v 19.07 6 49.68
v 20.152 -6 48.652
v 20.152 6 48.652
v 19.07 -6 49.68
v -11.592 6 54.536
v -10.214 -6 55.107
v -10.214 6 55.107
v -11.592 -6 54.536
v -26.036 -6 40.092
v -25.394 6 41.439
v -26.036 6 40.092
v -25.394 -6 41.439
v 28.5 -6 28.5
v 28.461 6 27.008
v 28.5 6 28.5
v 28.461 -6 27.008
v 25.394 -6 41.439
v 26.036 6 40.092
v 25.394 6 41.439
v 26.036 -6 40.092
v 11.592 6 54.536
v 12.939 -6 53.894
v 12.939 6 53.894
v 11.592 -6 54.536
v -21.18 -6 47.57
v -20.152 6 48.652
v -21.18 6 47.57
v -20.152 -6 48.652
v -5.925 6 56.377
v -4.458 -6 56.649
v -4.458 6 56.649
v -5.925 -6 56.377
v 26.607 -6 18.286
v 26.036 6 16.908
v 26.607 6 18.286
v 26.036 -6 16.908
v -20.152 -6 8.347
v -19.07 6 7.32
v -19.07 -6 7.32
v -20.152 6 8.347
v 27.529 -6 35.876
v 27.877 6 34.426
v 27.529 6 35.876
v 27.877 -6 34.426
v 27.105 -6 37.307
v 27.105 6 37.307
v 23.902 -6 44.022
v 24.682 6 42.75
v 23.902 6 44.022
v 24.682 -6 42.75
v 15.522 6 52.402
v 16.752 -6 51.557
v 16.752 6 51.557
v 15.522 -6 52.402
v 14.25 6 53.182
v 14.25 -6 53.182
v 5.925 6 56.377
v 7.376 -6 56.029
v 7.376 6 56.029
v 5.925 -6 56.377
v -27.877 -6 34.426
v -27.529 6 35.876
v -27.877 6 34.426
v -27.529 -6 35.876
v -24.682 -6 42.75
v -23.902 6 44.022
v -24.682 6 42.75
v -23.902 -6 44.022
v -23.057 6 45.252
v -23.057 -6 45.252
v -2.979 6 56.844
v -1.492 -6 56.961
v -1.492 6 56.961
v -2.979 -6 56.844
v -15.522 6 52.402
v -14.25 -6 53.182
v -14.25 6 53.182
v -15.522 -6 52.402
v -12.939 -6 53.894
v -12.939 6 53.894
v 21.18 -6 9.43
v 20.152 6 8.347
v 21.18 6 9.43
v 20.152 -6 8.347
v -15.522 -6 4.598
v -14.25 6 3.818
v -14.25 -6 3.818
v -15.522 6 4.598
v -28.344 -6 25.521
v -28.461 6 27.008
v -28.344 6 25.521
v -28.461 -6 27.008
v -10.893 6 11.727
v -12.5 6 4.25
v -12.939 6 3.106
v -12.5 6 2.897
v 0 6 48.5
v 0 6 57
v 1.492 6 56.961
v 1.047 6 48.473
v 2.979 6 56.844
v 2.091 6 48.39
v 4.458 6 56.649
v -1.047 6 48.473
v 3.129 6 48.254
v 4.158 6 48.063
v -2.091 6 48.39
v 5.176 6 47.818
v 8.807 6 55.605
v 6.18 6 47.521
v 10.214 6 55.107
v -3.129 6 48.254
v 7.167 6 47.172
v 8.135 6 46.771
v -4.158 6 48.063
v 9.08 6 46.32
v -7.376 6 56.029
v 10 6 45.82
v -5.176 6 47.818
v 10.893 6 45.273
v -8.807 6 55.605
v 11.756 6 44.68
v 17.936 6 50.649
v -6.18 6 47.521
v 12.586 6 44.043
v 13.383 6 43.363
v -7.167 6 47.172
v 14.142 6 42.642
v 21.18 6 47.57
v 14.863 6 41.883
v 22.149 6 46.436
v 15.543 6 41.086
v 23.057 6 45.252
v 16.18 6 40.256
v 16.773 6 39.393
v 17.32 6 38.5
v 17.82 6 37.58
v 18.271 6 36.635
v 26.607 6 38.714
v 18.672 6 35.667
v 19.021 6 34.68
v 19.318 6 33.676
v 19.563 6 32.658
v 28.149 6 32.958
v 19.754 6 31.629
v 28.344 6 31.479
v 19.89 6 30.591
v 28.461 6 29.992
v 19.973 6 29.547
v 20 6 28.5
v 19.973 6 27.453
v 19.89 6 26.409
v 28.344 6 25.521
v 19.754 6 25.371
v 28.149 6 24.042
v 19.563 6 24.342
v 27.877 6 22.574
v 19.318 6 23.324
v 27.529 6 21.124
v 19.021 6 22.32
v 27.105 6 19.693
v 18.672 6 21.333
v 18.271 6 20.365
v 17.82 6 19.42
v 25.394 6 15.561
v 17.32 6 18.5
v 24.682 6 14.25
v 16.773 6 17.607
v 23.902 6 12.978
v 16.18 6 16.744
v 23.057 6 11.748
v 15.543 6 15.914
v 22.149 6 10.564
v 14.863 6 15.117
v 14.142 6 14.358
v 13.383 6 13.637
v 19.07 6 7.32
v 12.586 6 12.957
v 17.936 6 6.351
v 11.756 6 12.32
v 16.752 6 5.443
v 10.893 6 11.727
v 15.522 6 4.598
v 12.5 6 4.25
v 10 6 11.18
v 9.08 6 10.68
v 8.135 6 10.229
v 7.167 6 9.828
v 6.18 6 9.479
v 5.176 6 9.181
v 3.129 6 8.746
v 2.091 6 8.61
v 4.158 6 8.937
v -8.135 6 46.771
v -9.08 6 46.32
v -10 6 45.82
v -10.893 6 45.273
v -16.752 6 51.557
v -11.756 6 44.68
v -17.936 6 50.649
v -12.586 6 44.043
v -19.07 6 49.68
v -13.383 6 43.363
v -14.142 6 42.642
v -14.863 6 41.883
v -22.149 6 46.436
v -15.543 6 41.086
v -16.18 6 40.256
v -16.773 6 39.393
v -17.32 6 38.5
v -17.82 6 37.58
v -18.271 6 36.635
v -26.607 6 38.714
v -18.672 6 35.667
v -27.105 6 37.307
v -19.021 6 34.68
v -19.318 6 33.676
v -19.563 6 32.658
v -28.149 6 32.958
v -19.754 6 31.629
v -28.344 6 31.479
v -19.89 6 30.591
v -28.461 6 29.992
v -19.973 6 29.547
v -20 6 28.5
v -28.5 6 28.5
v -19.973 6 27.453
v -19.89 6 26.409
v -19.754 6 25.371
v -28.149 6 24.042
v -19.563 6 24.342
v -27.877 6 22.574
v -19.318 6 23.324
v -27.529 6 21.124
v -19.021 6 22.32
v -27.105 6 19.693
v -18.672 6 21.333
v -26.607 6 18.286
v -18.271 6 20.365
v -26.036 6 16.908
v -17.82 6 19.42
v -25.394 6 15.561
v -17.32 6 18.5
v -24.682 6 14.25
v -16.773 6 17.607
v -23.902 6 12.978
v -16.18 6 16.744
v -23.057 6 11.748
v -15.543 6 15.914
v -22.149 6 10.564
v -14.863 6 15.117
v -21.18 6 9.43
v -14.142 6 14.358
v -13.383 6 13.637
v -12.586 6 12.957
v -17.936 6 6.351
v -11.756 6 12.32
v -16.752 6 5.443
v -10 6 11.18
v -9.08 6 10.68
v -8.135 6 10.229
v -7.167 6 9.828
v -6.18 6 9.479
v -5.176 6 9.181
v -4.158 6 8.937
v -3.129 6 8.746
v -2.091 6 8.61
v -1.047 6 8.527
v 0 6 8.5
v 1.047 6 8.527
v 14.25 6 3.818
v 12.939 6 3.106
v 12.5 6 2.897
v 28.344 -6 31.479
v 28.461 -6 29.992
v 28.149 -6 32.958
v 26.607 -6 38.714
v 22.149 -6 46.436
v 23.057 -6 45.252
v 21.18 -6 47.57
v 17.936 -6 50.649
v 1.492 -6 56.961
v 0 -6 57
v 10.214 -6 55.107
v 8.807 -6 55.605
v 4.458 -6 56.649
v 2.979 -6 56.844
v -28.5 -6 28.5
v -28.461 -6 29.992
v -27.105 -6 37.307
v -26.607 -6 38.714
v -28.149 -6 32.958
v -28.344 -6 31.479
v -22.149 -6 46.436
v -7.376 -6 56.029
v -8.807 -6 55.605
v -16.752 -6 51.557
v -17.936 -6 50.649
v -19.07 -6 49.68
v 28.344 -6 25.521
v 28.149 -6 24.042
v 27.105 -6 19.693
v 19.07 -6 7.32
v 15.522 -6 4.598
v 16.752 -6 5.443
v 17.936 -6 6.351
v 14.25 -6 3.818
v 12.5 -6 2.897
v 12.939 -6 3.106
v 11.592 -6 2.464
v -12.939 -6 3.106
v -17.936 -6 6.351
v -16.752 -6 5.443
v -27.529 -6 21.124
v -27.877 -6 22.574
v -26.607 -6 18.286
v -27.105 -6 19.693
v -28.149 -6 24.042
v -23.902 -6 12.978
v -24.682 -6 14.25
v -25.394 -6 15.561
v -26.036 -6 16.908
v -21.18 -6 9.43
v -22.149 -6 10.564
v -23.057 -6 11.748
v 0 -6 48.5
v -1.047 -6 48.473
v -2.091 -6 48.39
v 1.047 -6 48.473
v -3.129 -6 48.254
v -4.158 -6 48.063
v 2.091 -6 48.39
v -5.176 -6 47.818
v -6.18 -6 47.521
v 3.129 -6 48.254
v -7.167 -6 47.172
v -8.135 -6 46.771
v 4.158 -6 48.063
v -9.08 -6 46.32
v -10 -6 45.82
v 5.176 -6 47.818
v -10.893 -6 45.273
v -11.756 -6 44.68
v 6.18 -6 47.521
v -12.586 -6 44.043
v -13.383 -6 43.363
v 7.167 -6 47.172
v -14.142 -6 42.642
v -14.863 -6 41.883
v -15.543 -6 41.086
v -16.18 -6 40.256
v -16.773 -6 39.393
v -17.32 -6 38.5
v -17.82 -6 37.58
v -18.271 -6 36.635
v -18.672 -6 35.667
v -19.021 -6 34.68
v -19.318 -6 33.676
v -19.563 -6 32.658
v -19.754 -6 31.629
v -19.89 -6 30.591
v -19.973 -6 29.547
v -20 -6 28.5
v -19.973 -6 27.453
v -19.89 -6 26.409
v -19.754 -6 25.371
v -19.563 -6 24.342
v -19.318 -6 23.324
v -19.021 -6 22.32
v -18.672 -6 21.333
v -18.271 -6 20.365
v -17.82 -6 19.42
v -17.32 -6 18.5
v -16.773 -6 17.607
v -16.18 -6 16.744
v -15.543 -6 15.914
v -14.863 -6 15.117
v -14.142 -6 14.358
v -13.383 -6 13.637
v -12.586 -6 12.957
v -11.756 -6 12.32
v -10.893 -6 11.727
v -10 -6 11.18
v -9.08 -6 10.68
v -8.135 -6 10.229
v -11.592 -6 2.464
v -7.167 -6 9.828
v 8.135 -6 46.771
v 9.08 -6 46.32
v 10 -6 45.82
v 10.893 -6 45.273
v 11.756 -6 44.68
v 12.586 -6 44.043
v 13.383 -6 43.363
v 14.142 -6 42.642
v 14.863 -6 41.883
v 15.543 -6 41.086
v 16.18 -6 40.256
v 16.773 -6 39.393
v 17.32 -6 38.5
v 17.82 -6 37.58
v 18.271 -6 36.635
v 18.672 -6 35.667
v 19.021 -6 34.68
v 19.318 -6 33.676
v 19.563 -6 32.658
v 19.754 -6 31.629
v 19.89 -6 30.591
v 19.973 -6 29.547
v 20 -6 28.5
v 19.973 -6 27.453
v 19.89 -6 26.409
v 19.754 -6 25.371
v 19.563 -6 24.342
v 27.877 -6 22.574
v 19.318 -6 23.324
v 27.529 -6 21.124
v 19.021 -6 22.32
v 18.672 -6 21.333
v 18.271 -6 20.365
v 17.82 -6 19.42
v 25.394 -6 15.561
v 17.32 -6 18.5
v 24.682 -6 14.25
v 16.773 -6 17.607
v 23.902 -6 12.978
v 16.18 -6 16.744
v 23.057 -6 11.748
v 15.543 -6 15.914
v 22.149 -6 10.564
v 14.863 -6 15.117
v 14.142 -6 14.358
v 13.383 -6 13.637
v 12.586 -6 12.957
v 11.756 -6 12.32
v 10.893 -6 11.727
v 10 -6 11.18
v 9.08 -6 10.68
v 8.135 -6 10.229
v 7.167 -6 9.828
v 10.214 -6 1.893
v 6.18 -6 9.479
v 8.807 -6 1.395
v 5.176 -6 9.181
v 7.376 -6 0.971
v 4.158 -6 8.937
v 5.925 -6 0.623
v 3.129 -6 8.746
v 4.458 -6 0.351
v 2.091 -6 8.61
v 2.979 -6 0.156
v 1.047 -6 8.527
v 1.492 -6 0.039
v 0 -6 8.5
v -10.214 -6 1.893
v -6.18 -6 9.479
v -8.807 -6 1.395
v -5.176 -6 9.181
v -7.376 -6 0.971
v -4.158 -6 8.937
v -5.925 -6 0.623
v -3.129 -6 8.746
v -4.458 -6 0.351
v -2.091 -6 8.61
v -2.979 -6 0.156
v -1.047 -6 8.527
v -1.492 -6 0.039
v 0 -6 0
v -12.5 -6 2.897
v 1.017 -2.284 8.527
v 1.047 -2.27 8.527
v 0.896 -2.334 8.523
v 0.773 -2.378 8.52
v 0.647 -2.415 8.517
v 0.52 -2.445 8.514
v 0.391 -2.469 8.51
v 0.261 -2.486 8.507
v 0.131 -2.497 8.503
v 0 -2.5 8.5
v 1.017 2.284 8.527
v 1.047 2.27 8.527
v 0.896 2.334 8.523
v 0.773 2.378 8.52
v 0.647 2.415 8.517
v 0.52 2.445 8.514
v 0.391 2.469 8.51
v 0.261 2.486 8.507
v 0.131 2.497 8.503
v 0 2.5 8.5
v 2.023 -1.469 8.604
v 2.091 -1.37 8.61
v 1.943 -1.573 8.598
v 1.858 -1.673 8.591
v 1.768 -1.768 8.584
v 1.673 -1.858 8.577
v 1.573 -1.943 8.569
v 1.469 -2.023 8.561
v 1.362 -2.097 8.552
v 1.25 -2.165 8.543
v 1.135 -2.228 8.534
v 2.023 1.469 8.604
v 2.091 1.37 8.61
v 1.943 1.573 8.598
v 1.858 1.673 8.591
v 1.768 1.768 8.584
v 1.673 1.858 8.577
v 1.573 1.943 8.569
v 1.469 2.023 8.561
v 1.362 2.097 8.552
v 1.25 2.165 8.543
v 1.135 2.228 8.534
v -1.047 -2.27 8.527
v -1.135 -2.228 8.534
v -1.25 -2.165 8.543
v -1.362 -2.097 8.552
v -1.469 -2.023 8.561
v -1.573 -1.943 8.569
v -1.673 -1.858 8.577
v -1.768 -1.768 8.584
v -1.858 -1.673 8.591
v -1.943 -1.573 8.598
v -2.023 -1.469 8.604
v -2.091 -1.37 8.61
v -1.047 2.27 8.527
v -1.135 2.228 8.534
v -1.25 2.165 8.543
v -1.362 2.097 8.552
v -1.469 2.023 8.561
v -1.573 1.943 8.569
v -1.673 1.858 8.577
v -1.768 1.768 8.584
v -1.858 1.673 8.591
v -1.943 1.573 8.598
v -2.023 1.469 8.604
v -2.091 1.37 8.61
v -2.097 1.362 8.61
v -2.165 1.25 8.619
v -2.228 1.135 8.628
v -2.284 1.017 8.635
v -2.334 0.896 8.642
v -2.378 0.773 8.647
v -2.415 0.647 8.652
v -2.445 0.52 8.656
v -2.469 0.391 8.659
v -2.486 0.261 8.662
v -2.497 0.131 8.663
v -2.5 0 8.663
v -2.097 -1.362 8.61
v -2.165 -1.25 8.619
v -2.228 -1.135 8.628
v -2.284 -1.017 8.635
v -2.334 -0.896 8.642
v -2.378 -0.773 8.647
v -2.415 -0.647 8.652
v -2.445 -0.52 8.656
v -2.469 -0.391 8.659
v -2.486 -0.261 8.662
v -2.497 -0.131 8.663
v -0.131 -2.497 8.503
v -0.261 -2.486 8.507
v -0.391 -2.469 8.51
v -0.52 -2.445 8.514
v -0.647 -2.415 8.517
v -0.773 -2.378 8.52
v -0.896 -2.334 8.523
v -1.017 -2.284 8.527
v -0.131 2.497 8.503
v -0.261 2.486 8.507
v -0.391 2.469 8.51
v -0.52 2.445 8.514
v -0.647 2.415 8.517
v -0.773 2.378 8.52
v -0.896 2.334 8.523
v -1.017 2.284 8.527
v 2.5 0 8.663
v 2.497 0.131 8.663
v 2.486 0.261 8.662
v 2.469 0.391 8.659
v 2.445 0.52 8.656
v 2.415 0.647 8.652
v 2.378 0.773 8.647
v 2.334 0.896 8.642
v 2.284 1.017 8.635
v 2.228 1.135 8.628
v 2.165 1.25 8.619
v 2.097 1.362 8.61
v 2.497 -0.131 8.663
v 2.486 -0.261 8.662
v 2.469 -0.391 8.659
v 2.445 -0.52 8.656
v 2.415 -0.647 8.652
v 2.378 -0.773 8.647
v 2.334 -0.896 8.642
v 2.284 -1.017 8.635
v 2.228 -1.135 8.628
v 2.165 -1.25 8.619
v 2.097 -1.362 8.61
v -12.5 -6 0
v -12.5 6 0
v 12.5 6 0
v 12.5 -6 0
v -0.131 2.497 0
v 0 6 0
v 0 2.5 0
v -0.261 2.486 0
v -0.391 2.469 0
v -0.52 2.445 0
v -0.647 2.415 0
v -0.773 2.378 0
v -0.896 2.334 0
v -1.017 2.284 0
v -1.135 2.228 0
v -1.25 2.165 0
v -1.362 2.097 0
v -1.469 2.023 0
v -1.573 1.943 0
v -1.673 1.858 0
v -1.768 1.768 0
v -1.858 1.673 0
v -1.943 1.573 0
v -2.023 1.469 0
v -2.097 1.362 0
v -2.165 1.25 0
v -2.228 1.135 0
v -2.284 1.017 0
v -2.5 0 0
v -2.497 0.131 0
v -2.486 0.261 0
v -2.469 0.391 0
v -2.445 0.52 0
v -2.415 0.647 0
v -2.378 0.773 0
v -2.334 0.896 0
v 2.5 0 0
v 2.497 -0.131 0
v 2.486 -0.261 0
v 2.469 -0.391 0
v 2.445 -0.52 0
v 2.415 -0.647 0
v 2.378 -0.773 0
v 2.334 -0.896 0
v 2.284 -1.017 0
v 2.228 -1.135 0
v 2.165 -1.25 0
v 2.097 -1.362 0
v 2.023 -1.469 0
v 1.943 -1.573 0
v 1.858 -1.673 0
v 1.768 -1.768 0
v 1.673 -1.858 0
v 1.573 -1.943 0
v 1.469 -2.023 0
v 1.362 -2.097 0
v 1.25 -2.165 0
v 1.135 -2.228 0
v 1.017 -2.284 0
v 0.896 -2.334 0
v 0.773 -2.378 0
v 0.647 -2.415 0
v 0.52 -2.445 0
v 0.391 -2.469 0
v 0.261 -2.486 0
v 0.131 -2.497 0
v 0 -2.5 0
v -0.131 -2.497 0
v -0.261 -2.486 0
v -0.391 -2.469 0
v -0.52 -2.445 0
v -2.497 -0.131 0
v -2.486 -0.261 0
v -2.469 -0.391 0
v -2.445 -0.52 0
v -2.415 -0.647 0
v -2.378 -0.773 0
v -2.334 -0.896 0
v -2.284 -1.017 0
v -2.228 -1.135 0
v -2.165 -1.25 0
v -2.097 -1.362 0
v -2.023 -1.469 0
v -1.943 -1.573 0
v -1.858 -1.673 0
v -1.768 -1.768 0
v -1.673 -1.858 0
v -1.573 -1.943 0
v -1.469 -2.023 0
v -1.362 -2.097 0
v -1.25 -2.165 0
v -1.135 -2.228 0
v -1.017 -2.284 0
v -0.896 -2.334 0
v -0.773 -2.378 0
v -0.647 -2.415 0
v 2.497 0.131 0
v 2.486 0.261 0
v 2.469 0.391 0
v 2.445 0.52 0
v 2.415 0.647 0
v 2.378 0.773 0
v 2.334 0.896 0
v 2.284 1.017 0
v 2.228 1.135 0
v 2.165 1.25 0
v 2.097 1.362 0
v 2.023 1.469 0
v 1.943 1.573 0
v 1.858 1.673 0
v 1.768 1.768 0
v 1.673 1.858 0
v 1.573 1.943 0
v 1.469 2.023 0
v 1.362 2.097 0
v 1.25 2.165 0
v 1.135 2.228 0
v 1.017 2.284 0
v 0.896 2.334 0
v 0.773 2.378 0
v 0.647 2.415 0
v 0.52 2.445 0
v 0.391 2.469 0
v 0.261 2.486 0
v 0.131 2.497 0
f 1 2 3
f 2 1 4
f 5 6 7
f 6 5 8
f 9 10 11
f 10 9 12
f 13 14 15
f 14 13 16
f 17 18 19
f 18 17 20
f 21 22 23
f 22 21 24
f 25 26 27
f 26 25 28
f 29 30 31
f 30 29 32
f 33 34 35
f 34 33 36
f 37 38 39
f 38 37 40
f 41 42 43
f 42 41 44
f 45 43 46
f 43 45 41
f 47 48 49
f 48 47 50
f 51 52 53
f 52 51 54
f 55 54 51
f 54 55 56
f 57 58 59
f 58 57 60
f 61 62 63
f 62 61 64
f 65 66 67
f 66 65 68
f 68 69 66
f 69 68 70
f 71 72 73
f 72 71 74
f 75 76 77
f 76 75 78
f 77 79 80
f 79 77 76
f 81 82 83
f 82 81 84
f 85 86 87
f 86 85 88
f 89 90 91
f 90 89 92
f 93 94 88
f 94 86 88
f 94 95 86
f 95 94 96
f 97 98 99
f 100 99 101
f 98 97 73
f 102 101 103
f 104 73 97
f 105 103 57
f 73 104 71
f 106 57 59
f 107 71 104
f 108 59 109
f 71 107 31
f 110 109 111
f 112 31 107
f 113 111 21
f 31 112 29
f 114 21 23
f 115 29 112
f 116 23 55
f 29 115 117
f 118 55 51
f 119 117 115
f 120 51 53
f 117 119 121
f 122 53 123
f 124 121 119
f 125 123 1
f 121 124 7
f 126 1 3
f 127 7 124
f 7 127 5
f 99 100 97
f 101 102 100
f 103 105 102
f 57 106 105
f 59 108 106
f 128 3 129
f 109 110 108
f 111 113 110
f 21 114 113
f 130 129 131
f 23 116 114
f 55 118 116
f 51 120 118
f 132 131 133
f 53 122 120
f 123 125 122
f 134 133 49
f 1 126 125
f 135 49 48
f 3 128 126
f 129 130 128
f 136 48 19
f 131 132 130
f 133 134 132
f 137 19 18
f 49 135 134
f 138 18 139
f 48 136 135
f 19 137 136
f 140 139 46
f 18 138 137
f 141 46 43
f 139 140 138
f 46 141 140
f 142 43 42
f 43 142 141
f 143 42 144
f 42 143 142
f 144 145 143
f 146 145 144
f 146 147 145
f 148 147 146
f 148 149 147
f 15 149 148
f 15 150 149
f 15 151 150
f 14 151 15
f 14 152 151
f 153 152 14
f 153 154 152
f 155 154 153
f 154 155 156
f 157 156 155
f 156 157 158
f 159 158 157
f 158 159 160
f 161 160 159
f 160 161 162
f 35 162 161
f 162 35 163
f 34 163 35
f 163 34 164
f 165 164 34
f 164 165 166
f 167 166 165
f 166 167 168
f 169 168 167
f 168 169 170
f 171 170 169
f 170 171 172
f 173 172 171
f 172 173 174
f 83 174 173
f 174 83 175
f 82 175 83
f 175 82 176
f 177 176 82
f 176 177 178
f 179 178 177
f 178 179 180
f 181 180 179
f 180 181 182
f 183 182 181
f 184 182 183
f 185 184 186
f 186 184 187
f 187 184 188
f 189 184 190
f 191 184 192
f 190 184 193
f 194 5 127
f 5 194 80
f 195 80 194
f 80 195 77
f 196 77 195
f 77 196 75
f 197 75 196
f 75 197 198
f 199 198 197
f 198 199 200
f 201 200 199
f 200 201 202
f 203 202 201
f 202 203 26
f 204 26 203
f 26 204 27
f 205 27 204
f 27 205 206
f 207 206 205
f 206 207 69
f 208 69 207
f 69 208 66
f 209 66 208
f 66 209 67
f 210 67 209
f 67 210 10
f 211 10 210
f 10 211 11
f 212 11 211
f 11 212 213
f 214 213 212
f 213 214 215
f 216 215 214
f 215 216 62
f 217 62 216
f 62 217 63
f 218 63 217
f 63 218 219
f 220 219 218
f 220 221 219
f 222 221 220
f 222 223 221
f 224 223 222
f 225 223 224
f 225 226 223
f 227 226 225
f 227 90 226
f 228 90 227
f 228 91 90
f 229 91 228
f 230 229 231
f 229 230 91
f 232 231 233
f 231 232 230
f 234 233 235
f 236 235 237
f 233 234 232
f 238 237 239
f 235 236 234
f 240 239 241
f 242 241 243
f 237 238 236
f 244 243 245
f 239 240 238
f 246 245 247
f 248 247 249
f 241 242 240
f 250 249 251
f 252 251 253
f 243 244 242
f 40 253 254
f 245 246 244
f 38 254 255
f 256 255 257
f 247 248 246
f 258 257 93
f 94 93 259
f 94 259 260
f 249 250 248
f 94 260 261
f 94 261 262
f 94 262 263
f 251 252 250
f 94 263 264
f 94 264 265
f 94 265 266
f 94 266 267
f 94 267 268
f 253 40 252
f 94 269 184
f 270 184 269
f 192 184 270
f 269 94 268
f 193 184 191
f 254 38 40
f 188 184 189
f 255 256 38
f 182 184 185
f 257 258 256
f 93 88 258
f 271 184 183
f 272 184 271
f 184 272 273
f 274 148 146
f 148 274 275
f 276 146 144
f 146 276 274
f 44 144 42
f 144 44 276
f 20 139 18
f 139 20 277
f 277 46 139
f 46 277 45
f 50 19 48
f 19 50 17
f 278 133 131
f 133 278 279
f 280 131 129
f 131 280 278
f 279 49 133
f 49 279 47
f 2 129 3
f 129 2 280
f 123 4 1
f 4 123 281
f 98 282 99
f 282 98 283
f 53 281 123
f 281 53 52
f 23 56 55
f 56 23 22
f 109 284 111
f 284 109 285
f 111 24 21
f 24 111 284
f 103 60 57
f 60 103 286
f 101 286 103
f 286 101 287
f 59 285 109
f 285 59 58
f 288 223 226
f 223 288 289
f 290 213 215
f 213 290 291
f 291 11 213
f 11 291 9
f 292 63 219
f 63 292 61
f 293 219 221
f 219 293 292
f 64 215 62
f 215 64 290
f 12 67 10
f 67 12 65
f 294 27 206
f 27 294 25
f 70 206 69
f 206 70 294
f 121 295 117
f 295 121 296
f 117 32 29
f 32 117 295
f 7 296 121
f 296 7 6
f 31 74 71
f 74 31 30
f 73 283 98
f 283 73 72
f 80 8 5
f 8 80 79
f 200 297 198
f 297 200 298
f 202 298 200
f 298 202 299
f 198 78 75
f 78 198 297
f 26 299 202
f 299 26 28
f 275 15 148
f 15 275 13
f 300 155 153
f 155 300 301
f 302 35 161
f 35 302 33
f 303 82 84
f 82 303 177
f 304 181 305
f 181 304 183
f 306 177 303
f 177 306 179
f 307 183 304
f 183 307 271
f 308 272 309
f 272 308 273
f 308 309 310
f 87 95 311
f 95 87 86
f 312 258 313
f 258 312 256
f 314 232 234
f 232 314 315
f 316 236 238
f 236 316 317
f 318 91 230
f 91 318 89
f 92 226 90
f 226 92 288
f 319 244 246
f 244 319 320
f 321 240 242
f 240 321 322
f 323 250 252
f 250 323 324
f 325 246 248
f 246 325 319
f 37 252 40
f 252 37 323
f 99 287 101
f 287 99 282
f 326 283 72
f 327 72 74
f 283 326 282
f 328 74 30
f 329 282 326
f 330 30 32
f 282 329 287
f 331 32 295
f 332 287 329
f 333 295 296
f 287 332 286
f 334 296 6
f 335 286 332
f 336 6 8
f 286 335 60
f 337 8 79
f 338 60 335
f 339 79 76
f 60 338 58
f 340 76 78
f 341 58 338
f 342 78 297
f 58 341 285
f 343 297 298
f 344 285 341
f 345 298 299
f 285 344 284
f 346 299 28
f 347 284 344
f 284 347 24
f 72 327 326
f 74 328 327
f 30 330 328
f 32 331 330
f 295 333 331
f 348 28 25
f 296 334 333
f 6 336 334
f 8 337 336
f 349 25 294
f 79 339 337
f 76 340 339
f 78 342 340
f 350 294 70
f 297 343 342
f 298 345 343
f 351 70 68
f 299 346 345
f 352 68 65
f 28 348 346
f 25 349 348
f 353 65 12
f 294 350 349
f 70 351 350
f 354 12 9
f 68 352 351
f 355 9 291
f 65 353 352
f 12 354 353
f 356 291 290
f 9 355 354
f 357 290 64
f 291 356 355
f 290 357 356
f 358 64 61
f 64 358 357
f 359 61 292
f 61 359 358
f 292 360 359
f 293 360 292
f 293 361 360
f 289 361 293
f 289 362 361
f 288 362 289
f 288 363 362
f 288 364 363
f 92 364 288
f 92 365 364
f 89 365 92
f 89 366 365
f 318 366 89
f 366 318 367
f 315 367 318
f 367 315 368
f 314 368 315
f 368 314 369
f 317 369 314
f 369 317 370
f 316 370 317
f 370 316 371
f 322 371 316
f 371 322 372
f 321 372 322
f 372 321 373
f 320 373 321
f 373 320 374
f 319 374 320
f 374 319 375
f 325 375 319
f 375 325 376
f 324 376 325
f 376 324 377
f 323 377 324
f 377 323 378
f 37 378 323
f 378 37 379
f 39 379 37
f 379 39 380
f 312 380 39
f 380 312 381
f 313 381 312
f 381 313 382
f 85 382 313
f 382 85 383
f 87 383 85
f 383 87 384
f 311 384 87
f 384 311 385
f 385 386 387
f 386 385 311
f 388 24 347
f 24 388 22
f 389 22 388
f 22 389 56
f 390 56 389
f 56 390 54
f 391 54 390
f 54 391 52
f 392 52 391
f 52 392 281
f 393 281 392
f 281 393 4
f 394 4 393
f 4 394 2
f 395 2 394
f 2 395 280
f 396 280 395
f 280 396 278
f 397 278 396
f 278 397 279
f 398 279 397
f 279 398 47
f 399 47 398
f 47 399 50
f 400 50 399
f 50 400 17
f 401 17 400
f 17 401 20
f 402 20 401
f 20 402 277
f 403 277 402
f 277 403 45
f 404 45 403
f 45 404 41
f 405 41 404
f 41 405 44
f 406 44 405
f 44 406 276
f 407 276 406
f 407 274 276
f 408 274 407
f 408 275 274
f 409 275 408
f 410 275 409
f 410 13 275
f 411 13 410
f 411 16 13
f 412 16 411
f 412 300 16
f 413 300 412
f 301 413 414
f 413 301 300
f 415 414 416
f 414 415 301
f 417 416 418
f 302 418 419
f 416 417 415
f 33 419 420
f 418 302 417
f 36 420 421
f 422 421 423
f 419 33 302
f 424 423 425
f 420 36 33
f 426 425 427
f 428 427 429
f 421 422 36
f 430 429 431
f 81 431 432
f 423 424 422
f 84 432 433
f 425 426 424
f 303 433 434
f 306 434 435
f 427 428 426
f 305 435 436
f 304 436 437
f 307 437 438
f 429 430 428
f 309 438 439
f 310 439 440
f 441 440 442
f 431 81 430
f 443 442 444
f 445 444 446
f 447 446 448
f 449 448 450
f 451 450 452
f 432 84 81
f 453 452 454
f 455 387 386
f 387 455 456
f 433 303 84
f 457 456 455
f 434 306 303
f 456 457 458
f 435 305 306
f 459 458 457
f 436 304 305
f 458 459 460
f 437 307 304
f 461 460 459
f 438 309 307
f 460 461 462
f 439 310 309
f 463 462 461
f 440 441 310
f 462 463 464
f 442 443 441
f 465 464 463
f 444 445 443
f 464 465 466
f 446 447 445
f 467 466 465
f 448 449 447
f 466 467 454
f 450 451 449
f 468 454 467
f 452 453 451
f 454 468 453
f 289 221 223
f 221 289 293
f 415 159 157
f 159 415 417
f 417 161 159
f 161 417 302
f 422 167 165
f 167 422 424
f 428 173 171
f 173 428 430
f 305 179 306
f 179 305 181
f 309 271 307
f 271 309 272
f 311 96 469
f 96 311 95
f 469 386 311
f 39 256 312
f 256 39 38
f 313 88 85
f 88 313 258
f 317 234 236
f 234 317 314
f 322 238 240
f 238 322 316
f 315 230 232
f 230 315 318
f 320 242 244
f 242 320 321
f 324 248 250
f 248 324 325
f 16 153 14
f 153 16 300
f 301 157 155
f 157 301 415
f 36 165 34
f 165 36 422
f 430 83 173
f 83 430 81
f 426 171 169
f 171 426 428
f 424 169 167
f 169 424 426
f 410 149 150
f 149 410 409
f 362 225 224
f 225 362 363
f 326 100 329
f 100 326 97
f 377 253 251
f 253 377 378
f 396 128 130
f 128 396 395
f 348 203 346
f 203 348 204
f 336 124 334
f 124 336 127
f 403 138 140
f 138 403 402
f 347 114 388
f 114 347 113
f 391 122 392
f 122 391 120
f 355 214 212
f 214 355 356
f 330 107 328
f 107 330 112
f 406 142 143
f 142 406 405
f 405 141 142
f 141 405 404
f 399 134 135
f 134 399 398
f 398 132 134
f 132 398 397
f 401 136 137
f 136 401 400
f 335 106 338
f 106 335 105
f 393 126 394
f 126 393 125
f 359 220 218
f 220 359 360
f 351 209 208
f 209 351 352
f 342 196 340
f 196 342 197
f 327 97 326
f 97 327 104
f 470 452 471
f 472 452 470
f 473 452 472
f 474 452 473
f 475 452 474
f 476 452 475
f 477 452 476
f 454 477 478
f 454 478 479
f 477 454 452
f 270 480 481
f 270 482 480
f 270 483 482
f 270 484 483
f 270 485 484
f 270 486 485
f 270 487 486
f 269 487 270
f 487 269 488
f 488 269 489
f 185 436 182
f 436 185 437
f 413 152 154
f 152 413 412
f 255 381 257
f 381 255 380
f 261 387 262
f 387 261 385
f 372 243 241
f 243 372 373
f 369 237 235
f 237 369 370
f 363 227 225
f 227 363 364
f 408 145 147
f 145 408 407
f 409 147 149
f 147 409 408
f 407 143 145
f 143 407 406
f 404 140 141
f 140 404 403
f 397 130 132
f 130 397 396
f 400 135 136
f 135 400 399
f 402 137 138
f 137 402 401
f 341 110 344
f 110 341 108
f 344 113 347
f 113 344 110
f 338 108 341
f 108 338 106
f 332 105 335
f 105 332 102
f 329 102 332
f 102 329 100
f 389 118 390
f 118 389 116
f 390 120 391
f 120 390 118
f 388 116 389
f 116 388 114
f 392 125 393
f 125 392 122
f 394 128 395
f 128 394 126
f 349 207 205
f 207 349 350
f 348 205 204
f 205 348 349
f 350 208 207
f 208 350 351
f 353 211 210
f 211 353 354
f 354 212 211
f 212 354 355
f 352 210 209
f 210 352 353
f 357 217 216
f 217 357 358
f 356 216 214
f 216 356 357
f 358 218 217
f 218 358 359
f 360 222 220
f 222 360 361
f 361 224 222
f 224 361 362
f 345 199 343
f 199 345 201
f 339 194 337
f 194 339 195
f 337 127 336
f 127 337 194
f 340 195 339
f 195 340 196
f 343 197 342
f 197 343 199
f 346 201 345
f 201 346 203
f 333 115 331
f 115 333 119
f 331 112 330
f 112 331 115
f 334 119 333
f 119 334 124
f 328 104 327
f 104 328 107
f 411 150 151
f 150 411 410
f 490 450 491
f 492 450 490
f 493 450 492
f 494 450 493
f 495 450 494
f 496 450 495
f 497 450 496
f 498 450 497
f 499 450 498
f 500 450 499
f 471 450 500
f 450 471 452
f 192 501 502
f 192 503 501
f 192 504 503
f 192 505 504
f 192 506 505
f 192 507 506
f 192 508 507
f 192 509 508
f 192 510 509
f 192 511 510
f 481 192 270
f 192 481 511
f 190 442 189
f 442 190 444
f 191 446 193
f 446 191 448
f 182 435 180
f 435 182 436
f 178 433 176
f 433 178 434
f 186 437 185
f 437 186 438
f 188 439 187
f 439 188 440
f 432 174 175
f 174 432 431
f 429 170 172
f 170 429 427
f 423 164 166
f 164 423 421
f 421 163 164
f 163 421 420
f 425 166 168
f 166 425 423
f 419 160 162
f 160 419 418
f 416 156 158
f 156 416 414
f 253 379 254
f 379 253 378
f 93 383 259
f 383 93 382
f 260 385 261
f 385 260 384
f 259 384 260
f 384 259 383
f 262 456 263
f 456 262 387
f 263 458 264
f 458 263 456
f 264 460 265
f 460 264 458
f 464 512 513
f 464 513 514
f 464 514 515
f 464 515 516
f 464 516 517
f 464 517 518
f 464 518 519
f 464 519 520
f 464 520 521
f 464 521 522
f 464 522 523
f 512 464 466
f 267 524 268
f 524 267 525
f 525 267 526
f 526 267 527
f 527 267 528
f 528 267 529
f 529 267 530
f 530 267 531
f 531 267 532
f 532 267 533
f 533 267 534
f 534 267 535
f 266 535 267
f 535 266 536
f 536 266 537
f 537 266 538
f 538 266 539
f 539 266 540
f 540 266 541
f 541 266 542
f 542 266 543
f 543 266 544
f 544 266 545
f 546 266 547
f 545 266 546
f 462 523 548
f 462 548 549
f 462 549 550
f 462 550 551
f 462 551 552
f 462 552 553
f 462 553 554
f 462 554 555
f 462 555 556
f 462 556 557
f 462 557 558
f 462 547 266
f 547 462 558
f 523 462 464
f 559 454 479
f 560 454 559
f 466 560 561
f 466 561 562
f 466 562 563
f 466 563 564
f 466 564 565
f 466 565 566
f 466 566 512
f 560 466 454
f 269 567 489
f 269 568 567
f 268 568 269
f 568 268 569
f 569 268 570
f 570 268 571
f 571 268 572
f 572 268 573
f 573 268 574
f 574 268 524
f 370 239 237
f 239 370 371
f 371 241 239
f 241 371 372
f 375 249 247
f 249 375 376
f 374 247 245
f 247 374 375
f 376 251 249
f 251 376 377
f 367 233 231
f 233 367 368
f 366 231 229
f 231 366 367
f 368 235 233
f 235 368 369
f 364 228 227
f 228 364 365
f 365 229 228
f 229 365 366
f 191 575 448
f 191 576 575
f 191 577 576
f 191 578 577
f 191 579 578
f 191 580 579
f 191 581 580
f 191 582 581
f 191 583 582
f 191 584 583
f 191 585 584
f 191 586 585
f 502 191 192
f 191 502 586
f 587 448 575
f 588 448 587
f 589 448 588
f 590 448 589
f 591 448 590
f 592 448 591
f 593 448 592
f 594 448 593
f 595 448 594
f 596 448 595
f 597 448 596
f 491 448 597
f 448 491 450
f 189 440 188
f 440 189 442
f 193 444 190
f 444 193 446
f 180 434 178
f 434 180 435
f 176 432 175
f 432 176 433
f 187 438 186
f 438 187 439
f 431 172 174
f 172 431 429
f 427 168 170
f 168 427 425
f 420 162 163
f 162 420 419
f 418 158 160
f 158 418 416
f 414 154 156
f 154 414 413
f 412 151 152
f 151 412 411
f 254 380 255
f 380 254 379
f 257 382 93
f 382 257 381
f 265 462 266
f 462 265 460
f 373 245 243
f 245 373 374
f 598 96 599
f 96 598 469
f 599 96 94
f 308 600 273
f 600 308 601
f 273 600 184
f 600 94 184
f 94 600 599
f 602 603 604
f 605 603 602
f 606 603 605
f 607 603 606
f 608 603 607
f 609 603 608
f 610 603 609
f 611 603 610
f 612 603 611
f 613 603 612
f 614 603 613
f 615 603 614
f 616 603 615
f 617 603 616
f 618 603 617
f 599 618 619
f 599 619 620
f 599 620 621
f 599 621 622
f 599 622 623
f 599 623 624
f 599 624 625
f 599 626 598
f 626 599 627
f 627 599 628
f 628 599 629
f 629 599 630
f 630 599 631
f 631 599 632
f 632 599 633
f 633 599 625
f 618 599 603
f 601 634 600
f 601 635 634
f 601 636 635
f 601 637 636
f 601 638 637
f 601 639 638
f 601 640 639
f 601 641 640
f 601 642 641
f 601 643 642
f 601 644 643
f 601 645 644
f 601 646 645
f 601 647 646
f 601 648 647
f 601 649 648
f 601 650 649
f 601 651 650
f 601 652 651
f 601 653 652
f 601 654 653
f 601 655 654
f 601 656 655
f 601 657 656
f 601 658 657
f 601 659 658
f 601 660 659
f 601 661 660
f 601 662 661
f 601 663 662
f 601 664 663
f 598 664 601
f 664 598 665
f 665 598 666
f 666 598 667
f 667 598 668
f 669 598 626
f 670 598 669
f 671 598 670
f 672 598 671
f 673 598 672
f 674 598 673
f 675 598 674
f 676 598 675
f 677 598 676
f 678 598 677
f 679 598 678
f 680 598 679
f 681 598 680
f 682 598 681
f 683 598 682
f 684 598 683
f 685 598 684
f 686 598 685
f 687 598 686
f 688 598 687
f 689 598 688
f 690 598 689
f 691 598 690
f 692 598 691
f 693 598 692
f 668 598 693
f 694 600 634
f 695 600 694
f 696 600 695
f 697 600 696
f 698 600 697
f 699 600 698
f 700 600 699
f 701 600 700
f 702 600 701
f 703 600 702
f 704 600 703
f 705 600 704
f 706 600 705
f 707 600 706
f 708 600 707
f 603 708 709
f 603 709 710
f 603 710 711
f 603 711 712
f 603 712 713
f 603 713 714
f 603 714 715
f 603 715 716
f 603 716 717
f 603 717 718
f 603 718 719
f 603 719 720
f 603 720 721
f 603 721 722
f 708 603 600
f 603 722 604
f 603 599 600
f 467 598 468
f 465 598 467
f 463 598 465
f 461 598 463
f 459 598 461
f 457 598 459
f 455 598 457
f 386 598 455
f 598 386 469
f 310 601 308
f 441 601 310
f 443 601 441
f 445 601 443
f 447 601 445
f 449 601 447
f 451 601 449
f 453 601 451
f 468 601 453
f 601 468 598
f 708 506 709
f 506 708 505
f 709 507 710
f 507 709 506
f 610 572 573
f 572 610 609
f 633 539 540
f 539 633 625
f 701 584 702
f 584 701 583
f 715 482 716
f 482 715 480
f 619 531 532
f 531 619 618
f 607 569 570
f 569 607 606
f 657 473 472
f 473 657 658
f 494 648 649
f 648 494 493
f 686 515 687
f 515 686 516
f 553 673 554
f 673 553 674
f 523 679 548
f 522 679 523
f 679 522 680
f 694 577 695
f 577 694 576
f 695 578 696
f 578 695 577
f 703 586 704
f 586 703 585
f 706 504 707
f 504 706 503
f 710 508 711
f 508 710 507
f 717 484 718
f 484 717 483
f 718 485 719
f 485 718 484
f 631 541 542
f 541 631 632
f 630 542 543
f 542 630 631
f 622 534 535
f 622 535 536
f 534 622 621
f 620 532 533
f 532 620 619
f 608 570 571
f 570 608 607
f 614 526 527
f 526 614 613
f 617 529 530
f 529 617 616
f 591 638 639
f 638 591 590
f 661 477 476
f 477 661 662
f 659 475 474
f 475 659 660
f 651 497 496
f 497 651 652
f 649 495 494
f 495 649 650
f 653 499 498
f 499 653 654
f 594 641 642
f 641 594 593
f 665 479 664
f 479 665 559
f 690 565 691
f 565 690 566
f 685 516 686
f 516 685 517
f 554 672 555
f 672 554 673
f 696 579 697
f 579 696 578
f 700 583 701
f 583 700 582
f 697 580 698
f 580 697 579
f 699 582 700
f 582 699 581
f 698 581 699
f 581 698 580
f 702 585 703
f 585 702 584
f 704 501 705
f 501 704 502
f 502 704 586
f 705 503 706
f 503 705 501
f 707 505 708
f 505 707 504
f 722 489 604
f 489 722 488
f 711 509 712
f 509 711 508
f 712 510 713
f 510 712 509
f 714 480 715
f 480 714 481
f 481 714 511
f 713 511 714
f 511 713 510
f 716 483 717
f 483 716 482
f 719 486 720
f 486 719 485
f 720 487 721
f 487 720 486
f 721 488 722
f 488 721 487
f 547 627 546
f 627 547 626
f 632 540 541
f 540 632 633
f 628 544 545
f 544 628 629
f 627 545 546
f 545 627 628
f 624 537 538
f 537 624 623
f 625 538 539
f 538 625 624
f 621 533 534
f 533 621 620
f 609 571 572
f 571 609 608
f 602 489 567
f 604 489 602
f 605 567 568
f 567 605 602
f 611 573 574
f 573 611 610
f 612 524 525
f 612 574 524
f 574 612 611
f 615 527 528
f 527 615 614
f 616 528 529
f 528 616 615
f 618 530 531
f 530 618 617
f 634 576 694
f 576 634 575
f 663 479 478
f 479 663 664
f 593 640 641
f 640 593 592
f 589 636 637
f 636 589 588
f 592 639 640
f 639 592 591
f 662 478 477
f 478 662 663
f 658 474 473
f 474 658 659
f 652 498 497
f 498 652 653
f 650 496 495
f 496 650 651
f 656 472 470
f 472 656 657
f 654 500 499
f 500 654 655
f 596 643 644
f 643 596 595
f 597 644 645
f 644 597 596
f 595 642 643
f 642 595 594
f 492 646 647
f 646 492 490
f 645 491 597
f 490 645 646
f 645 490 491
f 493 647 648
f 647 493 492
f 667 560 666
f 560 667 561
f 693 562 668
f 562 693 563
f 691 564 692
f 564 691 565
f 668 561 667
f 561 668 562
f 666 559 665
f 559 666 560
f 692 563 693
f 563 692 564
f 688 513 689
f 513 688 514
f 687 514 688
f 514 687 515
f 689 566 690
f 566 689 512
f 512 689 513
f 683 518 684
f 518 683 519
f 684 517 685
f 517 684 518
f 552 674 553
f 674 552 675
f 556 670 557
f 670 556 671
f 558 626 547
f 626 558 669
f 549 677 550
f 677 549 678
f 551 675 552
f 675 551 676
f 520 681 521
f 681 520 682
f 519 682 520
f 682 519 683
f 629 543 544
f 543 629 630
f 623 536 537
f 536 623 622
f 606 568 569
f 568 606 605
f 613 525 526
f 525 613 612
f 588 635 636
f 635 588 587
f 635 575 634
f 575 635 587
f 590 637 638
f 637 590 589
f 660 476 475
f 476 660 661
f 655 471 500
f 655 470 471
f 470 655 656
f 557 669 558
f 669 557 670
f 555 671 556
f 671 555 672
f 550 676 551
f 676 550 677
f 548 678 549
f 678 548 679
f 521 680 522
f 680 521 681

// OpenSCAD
 
 di=40;  //inner diameter
 da=57; // Outer diameter
 h=12;   // Height
 w= 25; // Width of mount point
 
 $fn= 120;
 difference(){
 union(){
    translate( [0,0,(da-di)/8] ) {
        difference(){
 cube( [w, ,h,(da-di)/4] ,center=true);
     
        }}
 
 translate( [0,0,da/2] ) {
rotate(a = 90, v = [1,0, 0]) { 
 difference() {
 cylinder(h=h, d1=da, d2=da, center=true);
cylinder(h=h+1, d1=di, d2=di ,center=true);
     } 
    }  
}
}
cylinder(h=50, d=5, center=true);	       
}
